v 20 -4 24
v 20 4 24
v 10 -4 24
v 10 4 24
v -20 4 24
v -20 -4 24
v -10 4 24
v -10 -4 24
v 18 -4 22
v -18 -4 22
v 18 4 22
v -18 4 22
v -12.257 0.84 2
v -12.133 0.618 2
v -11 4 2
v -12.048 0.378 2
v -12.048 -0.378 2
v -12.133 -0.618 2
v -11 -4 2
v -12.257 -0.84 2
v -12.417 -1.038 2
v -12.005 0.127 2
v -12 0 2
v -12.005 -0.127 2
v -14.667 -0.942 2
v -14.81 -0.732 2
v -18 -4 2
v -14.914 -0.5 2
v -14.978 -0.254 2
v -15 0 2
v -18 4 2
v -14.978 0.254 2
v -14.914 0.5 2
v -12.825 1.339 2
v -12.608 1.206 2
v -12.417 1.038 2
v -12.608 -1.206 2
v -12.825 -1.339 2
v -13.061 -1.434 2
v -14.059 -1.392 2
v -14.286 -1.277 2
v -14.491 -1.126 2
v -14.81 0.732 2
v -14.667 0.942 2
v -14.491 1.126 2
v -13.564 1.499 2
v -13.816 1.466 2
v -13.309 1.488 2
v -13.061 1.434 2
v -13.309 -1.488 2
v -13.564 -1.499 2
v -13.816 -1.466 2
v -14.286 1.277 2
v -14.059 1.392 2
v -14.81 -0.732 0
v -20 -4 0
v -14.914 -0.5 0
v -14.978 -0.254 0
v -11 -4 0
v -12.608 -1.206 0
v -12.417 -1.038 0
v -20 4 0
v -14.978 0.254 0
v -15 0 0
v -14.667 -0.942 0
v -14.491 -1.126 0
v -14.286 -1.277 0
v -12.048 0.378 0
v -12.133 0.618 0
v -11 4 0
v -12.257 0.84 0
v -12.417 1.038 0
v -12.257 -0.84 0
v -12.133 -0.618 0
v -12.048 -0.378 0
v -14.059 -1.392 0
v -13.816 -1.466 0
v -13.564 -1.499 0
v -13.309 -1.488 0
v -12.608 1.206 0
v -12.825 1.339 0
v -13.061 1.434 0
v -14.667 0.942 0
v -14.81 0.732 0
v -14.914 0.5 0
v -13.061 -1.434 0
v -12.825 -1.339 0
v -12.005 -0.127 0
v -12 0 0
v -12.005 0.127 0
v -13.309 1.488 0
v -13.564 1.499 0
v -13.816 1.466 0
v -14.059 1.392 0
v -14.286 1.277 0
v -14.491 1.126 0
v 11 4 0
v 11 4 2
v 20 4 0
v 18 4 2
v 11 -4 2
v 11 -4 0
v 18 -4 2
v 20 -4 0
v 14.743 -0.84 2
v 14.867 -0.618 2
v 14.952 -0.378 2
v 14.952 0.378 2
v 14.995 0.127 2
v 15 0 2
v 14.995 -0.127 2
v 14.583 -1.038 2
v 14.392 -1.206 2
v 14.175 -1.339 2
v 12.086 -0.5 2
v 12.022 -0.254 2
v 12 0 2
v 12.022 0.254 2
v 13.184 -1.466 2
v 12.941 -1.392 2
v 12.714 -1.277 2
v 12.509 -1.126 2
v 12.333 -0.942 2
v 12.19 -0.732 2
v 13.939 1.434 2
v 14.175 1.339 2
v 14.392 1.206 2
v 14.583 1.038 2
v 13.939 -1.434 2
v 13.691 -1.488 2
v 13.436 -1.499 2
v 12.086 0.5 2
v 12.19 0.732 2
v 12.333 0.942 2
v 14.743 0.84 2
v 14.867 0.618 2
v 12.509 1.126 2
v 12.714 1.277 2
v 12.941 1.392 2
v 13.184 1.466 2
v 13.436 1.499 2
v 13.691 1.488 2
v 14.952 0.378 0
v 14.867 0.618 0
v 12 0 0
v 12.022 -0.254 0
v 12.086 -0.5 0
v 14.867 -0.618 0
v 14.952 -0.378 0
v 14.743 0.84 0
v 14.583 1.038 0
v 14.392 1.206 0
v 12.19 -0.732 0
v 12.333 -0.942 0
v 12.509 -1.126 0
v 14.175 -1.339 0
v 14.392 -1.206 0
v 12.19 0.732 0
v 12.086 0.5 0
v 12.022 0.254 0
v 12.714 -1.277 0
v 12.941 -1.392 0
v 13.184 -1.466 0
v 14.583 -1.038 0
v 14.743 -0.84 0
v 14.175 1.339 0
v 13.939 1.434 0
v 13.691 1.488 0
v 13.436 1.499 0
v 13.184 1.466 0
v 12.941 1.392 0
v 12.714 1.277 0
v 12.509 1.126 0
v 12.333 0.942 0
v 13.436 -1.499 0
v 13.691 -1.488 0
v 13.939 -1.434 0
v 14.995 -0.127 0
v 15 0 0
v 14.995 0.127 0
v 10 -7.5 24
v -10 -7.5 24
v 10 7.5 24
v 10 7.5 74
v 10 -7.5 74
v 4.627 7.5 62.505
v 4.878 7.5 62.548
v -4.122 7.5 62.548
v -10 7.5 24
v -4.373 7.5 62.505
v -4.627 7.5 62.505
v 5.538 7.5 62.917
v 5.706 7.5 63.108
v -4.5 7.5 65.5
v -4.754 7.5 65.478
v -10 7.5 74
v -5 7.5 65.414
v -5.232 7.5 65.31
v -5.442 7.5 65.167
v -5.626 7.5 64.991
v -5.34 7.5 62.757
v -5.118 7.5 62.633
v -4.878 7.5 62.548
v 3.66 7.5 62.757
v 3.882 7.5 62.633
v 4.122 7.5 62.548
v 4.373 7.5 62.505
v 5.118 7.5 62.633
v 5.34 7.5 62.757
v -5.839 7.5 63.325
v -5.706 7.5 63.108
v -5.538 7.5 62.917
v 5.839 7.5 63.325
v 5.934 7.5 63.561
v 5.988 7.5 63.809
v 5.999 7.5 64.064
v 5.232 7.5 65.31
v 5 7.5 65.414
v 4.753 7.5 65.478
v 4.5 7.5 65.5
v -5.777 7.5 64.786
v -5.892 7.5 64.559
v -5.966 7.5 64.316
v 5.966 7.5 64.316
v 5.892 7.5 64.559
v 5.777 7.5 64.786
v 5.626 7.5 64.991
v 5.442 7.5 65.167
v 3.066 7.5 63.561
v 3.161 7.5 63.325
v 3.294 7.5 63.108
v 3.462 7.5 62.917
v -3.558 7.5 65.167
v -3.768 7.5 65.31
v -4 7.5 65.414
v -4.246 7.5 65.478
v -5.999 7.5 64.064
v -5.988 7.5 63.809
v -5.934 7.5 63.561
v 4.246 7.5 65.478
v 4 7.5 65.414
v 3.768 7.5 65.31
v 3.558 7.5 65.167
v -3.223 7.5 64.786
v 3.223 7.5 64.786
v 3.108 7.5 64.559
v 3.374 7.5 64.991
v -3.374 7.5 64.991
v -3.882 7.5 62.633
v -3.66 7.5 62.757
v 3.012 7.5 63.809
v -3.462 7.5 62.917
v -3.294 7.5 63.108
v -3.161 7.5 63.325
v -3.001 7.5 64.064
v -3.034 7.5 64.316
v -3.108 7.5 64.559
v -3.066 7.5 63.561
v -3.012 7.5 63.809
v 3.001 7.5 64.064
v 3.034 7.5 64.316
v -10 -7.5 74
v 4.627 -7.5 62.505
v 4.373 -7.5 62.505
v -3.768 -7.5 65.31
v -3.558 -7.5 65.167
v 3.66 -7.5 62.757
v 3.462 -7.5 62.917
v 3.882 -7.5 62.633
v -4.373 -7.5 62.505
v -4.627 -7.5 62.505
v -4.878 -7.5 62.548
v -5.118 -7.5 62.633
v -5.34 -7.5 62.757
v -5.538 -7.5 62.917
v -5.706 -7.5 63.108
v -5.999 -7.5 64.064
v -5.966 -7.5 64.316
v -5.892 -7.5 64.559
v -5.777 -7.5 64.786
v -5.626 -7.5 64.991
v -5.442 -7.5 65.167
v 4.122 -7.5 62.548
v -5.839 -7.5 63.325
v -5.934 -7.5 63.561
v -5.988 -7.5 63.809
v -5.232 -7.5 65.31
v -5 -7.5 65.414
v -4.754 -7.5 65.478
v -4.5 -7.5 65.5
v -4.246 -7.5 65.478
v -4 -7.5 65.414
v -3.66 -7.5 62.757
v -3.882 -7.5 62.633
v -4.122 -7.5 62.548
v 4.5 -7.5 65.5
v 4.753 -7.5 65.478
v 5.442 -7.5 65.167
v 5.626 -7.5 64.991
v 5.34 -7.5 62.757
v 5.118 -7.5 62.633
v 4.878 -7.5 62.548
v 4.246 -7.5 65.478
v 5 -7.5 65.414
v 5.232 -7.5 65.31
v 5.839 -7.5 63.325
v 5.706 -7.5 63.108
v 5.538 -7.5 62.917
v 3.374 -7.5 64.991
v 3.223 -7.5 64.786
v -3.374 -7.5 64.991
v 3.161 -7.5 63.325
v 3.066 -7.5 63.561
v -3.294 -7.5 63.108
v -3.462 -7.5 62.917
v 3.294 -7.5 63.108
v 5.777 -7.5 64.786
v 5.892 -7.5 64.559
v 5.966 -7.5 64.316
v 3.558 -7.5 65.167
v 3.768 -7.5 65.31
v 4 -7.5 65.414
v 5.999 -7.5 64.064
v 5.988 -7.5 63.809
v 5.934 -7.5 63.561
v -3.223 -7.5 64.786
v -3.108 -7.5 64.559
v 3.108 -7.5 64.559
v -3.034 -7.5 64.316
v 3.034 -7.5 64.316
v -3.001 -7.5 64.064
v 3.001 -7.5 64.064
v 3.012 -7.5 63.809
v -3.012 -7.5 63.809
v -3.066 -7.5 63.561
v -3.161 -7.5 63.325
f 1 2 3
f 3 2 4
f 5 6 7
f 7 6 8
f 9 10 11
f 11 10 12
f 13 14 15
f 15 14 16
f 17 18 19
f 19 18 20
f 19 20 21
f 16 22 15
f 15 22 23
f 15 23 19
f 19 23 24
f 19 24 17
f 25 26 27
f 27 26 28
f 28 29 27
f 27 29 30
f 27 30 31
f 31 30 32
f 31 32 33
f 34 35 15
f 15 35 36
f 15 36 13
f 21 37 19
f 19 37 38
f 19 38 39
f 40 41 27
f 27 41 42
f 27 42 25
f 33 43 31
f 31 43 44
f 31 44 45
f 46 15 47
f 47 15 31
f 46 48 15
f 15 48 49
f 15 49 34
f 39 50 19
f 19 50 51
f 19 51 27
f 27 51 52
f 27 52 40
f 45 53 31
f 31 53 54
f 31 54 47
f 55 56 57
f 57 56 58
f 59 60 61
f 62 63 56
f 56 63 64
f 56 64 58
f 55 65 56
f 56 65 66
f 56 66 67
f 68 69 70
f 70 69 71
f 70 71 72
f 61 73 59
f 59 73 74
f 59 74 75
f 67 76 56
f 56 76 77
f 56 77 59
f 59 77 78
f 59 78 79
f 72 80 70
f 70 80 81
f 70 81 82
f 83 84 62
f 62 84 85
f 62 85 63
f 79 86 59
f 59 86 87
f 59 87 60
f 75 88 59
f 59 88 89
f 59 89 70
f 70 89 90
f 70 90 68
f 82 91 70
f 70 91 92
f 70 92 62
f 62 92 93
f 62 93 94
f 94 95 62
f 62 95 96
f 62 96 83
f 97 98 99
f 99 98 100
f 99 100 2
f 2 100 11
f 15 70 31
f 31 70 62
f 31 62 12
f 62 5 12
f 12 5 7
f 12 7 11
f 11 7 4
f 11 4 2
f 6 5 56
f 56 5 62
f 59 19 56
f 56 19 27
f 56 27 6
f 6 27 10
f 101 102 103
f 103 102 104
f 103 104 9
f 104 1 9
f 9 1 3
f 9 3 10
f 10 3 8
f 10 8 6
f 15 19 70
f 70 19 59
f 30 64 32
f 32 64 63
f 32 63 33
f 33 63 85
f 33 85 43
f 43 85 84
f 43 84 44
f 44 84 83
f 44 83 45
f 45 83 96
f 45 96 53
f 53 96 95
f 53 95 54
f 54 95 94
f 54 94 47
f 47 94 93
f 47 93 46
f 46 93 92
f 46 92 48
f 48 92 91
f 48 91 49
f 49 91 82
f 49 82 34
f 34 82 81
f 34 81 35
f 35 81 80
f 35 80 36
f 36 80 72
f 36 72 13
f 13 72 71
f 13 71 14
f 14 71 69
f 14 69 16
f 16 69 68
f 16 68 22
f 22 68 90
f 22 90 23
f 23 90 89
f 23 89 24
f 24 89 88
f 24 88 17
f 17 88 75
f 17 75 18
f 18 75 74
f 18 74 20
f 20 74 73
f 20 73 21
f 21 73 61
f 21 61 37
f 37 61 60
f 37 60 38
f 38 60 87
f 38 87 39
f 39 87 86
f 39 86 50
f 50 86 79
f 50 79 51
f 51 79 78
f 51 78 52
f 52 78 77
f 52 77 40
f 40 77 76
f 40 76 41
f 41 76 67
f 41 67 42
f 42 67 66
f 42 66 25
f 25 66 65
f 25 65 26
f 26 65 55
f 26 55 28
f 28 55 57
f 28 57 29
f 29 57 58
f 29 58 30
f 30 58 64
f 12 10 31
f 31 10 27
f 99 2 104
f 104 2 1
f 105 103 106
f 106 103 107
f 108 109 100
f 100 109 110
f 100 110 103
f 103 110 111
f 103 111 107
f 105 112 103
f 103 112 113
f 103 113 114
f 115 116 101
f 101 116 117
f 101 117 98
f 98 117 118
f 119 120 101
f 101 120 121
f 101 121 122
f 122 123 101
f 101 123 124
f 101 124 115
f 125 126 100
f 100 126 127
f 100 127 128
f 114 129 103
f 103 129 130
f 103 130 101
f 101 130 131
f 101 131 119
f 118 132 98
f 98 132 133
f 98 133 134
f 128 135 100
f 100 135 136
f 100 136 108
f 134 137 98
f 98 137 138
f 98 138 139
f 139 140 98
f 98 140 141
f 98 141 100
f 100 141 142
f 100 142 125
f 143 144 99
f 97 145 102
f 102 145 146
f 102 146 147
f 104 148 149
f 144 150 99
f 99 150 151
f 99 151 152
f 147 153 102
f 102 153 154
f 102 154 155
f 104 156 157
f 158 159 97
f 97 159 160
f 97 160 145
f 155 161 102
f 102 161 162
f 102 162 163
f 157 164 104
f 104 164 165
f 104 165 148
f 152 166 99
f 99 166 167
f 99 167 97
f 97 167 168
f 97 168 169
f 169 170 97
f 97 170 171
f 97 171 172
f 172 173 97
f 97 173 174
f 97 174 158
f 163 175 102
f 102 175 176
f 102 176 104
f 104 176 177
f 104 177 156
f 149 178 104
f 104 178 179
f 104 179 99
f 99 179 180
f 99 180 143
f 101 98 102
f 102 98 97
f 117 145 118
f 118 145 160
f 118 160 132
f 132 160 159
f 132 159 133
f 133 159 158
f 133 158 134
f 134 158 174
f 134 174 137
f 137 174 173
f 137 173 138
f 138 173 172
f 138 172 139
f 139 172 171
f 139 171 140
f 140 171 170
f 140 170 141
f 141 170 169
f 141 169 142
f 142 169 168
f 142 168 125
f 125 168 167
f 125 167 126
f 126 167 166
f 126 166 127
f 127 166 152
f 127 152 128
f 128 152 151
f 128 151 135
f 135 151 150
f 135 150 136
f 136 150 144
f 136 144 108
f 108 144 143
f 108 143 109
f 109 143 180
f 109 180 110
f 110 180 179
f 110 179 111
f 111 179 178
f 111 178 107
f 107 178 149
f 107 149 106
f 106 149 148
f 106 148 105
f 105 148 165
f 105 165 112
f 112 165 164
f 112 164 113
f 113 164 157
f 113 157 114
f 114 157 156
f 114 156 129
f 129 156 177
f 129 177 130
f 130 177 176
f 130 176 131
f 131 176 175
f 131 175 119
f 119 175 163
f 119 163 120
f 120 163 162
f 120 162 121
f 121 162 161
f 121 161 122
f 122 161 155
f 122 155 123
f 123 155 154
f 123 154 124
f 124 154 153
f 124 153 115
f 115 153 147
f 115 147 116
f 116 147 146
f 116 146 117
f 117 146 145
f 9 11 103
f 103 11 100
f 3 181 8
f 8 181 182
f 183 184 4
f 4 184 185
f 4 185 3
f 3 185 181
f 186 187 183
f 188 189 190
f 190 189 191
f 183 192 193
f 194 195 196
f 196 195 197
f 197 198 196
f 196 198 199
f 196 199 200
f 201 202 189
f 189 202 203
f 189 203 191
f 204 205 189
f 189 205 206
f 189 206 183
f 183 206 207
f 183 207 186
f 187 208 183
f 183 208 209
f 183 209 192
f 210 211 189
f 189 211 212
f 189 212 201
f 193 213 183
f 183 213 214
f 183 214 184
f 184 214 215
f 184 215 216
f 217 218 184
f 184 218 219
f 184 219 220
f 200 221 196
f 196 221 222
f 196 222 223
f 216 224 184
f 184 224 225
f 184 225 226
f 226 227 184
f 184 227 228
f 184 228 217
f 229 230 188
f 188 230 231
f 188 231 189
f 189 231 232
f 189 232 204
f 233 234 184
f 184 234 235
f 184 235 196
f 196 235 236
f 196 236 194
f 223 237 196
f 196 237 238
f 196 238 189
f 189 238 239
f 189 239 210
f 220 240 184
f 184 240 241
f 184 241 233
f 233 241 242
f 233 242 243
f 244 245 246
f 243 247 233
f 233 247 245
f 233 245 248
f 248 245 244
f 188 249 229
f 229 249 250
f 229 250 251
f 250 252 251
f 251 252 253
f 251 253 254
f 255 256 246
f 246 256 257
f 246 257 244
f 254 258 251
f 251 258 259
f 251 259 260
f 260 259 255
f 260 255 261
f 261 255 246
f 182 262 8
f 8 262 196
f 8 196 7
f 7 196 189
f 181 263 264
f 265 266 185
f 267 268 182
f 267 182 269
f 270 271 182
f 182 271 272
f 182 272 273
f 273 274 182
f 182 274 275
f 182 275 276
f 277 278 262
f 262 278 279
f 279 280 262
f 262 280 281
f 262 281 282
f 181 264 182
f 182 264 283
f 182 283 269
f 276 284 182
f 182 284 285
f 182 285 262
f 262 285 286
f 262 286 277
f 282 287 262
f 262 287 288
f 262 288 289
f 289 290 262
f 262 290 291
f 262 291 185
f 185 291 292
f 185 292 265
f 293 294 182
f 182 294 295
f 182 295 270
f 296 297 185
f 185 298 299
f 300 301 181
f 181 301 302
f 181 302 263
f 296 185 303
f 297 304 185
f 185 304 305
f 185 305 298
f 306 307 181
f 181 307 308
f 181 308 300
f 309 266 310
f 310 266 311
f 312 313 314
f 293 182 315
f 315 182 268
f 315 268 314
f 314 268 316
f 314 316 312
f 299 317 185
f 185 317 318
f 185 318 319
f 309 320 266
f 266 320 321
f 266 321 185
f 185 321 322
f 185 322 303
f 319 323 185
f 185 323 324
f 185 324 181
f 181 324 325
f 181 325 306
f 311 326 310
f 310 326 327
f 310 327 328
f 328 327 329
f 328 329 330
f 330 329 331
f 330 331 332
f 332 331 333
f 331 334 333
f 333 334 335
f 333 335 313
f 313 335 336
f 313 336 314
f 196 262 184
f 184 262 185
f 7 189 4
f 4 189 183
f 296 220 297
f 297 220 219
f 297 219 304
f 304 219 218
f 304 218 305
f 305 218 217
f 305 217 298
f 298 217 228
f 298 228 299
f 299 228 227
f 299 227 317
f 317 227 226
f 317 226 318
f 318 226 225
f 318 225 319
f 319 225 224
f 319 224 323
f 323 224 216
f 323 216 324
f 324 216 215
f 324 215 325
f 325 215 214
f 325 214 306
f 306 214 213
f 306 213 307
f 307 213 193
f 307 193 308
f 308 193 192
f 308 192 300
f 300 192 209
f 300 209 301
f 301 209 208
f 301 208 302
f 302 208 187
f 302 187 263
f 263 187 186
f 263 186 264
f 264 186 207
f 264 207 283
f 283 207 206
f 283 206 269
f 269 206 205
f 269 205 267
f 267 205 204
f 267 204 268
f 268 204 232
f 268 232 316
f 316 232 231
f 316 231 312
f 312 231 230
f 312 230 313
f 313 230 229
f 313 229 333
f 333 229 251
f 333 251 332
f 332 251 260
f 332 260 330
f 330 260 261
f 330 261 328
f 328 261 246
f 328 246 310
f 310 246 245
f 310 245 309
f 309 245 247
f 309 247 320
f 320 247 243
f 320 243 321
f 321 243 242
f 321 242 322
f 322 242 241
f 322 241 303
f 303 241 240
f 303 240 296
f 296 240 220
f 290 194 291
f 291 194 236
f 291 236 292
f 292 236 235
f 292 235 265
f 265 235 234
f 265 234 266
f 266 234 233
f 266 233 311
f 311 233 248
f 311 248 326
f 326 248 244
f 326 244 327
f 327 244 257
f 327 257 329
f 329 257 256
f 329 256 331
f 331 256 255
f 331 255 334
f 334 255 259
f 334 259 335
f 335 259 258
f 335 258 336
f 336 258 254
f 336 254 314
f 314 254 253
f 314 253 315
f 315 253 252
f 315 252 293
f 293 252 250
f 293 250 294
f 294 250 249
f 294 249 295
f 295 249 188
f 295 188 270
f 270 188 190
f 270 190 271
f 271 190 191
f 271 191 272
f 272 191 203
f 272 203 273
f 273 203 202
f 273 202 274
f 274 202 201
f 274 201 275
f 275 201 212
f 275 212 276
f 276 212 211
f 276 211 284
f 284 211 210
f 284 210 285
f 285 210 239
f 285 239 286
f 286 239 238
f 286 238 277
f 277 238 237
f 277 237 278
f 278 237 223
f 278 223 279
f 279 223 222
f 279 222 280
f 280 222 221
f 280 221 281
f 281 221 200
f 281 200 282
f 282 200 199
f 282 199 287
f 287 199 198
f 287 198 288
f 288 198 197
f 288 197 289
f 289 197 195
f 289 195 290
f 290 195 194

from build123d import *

# Parameters (mm, degrees)
SKETCH_8_W          = 9
SKETCH_8_H          = 8
SKETCH_8_R          = 1.5
EXTRUDE_1_DEPTH     = 2
EXTRUDE_1_2_DEPTH   = 2
SKETCH_9_W          = 2
SKETCH_9_H          = 8
EXTRUDE_2_DEPTH     = 20
SKETCH_10_W         = 40
SKETCH_10_H         = 8
EXTRUDE_3_DEPTH     = 2
SKETCH_11_W         = 20
SKETCH_11_H         = 15
EXTRUDE_4_DEPTH     = 50
SKETCH_12_R         = 1.5
CUT_EXTRUDE_1_DEPTH = 79.108898341


with BuildPart() as part:
    # Эскиз8 → Бобышка-Вытянуть1 (new body)
    with BuildSketch(Plane.XY):
        with Locations((-15.5, 0)):
            Rectangle(SKETCH_8_W, SKETCH_8_H)
        with Locations((-13.5, 0)):
            Circle(SKETCH_8_R, mode=Mode.SUBTRACT)
    extrude(amount=EXTRUDE_1_DEPTH)



with BuildPart() as body_2:
    # Эскиз8 → Extrude 1 2 (new body)
    with BuildSketch(Plane.XY):
        with Locations((15.5, 0)):
            Rectangle(SKETCH_8_W, SKETCH_8_H)
        with Locations((13.5, 0)):
            Circle(SKETCH_8_R, mode=Mode.SUBTRACT)
    extrude(amount=EXTRUDE_1_2_DEPTH)


with BuildPart() as part_1:
    add(part.part)

    add(body_2.part)  # Бобышка-Вытянуть2 merges body 2
    # Эскиз9 → Бобышка-Вытянуть2 (add)
    with BuildSketch(Plane.XY.offset(2)):
        with Locations((-19, 0)):
            Rectangle(SKETCH_9_W, SKETCH_9_H)
        with Locations((19, 0)):
            Rectangle(SKETCH_9_W, SKETCH_9_H)
    extrude(amount=EXTRUDE_2_DEPTH)

    # Эскиз10 → Бобышка-Вытянуть3 (add)
    with BuildSketch(Plane.XY.offset(22)):
        Rectangle(SKETCH_10_W, SKETCH_10_H)
    extrude(amount=EXTRUDE_3_DEPTH)

    # Эскиз11 → Бобышка-Вытянуть4 (add)
    with BuildSketch(Plane.XY.offset(24)):
        Rectangle(SKETCH_11_W, SKETCH_11_H)
    extrude(amount=EXTRUDE_4_DEPTH)

    # Эскиз12 → Вырез-Вытянуть1 (cut, through all)
    with BuildSketch(Plane(origin=(0, 7.5, 0), x_dir=(1, 0, 0), z_dir=(0, 1, 0))):
        with Locations(Location((-4.5, -64, 0), (0, 0, 270))):
            Circle(SKETCH_12_R)
        with Locations(Location((4.5, -64, 0), (0, 0, 270))):
            Circle(SKETCH_12_R)
    extrude(amount=-CUT_EXTRUDE_1_DEPTH, mode=Mode.SUBTRACT)


solid = part_1.part
